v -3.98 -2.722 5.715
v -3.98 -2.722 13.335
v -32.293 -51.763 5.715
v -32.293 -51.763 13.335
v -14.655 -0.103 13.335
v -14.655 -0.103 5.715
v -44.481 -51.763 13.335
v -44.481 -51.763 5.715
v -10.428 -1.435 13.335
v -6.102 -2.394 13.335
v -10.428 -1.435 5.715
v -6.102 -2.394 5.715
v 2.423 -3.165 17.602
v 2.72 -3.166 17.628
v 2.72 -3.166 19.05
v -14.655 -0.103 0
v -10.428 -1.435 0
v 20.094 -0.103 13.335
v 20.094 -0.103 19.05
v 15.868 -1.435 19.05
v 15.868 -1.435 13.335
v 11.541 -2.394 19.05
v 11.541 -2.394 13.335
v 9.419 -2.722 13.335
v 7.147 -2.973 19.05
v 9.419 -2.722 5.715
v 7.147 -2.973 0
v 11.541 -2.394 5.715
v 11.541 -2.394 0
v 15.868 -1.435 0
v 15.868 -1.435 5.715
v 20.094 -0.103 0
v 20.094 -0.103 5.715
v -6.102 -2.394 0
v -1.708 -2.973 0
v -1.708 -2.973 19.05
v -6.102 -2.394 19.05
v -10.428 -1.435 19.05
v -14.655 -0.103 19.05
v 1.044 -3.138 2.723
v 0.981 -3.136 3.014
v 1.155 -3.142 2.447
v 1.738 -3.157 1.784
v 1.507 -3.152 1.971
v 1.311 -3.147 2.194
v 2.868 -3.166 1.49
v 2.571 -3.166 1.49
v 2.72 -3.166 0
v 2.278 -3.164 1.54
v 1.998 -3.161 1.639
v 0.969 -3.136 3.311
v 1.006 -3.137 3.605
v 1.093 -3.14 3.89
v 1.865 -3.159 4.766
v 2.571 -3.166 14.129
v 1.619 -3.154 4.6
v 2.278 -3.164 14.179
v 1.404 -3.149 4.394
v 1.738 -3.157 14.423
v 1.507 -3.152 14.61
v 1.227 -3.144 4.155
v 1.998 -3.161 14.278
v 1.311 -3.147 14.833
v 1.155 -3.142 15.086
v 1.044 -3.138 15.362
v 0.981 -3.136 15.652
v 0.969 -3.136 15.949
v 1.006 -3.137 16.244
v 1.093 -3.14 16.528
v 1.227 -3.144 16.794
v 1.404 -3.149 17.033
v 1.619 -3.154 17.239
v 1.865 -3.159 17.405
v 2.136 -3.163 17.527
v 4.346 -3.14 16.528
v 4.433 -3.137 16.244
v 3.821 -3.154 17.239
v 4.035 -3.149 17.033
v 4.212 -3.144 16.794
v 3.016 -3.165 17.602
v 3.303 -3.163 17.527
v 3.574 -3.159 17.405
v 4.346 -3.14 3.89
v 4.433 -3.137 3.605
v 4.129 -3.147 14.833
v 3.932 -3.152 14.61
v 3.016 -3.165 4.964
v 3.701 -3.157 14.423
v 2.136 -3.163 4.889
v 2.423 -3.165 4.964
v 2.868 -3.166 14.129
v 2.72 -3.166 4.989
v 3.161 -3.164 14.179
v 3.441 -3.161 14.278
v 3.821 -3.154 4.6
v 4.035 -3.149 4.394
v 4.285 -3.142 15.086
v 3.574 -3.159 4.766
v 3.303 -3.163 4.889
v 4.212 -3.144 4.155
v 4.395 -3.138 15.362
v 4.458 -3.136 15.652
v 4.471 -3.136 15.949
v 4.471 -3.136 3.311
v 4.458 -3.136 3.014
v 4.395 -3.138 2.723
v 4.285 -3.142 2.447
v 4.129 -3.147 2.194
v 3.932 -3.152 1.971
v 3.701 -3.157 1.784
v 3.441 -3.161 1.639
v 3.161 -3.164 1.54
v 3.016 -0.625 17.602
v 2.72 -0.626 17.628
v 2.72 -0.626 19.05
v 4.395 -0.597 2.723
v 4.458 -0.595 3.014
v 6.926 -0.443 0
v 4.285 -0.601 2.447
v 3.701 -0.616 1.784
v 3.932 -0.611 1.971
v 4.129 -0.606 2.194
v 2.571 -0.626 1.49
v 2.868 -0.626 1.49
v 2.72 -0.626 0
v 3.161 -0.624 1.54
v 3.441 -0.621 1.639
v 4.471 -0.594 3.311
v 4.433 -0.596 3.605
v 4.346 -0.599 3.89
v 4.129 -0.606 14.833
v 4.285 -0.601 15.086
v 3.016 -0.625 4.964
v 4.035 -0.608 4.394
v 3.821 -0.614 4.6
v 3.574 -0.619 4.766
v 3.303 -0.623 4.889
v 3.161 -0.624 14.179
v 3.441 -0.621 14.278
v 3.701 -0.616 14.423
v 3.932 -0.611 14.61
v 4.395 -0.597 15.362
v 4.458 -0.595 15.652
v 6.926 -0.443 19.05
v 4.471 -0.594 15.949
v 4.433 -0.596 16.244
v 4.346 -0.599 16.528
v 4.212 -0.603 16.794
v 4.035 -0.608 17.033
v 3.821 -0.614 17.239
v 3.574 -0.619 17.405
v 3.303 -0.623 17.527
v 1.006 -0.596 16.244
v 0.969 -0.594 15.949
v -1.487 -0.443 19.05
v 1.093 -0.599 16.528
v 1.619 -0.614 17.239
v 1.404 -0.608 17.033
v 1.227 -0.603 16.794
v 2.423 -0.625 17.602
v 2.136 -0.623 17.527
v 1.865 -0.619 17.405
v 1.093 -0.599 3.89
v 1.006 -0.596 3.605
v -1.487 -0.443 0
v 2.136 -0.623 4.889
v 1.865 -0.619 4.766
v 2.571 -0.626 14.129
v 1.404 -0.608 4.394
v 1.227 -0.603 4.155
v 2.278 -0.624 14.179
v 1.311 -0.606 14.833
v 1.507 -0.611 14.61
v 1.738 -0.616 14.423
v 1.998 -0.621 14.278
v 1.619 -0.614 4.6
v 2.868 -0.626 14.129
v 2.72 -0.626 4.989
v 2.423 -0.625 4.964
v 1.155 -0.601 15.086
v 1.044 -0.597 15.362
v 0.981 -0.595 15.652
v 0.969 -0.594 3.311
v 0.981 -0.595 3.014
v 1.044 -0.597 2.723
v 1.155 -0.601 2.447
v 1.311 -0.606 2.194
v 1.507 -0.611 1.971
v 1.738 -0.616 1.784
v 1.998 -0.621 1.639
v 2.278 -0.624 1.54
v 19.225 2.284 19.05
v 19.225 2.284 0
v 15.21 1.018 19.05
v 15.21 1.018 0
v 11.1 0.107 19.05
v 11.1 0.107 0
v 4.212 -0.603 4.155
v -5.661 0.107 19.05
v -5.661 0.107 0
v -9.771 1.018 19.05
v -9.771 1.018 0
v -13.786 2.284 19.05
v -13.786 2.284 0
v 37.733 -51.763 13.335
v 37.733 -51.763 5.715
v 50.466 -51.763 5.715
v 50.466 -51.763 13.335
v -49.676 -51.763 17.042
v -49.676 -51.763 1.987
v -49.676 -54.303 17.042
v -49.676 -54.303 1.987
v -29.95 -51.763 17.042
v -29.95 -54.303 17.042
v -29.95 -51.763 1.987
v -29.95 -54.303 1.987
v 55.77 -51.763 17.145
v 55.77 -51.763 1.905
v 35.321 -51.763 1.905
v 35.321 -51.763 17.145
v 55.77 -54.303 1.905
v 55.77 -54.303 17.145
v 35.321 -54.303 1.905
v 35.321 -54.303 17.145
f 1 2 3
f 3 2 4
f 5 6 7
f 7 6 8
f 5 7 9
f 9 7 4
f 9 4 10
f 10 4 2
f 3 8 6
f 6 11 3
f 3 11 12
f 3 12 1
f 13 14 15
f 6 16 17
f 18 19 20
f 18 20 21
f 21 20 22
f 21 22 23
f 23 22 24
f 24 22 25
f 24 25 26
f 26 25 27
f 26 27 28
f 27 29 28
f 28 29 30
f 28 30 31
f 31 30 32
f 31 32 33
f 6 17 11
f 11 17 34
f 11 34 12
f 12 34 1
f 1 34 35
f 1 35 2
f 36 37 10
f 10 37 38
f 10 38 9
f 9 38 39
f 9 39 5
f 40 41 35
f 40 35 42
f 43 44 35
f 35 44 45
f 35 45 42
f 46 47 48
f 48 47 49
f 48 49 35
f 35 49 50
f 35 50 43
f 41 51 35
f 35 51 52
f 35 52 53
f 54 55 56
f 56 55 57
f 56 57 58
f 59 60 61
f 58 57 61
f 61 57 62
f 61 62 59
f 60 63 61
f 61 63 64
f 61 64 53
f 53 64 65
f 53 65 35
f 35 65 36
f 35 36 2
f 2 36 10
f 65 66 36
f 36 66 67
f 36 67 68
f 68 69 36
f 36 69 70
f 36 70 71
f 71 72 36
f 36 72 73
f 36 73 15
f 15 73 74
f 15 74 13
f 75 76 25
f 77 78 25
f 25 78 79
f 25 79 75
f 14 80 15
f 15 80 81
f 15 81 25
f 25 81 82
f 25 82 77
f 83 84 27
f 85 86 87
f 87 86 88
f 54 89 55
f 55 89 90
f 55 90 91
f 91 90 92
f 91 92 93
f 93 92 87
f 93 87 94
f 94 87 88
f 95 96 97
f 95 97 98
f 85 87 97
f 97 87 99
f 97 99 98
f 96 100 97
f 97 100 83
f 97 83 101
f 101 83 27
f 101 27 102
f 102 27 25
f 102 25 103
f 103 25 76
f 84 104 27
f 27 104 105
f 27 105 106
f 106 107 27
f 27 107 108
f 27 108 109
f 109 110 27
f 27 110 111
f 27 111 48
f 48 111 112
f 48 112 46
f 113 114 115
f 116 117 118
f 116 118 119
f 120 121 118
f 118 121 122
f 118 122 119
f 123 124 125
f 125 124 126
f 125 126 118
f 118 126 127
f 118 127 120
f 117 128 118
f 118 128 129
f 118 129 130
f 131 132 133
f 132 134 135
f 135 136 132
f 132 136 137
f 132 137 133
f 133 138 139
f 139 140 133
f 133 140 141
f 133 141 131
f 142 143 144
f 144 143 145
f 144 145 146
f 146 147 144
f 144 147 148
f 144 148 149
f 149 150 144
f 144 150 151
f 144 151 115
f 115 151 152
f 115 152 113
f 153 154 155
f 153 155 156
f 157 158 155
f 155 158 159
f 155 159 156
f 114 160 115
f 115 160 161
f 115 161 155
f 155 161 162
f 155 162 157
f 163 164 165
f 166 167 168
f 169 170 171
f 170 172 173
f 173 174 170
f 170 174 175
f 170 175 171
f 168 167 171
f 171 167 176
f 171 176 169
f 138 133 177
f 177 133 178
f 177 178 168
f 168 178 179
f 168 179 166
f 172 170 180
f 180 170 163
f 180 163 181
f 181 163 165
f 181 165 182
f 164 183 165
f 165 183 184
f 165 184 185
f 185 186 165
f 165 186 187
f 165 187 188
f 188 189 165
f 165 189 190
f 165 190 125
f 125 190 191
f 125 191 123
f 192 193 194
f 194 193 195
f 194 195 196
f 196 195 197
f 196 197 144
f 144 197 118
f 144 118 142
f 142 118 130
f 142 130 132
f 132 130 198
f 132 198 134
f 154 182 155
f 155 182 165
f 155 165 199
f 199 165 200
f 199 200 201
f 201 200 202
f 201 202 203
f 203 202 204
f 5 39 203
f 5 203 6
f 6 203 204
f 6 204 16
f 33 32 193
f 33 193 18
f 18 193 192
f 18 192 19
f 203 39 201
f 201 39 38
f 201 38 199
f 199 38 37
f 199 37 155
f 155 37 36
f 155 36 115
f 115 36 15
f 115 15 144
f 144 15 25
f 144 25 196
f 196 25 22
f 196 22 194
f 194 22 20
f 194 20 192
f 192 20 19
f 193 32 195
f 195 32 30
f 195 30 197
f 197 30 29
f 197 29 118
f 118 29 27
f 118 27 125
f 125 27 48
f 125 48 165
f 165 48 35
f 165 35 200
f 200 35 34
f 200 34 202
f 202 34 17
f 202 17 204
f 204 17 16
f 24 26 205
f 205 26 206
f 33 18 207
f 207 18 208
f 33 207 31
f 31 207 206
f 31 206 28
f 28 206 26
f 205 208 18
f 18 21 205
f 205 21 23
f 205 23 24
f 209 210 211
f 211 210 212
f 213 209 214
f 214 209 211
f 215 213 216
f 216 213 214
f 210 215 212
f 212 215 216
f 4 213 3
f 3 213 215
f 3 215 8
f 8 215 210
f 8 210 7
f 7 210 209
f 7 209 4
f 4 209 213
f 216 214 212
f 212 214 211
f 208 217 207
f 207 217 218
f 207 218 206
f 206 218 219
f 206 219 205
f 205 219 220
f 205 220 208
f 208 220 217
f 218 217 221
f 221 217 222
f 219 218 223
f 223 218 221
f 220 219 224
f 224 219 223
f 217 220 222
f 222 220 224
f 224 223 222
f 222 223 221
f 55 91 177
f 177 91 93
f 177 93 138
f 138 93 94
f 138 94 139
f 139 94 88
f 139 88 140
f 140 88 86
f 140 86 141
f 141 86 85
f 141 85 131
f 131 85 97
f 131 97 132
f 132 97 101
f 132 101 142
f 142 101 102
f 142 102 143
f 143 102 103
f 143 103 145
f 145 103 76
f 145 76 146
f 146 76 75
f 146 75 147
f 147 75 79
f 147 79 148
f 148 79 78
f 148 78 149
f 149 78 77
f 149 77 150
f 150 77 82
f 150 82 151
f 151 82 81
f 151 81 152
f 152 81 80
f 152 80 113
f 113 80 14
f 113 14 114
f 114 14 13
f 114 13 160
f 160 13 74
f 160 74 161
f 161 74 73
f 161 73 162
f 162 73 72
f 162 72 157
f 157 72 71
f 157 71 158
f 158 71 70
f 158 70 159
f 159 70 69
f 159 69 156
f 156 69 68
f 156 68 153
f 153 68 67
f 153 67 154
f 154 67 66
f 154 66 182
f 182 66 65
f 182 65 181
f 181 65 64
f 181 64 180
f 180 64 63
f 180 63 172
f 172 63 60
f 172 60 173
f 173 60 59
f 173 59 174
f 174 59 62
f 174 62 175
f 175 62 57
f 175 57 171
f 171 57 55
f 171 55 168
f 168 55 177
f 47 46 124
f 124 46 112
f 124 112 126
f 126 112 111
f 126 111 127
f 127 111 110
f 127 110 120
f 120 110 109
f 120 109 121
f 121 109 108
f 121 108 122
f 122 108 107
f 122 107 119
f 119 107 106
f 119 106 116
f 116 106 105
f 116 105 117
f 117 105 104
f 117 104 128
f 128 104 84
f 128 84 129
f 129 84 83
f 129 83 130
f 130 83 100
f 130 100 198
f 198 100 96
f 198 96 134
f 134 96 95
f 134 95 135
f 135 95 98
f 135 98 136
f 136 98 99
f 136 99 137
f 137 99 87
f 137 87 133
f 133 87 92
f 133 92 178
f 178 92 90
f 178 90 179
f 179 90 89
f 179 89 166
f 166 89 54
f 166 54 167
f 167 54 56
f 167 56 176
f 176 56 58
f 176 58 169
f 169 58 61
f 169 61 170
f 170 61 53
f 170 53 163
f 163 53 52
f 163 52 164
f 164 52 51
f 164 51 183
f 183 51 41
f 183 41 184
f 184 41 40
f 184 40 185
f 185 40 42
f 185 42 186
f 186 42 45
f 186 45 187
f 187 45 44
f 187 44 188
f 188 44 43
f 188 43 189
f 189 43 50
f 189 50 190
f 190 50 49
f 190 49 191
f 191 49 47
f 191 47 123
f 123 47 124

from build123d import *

# Parameters (mm, degrees)
BOSS_EXTRUDE1_DEPTH      = 19.05
BOSS_EXTRUDE2_DEPTH      = 3.81
BOSS_EXTRUDE2_DEPTH_BACK = 3.81
BOSS_EXTRUDE2_START      = -9.525
SKETCH3_W                = 19.725995145
SKETCH3_H                = 15.0557617
SKETCH3_W_2              = 20.448664957
SKETCH3_H_2              = 15.24
BOSS_EXTRUDE3_DEPTH      = 2.54
SKETCH4_R                = 1.7526
CUT_EXTRUDE1_DEPTH       = 9.398


with BuildPart() as part:
    # Sketch1 → Boss-Extrude1 (new body)
    with BuildSketch(Plane.XY):
        with BuildLine():
            ThreePointArc((19.225490484, 2.284288075), (2.719598367, -0.626146046), (-13.78629375, 2.284288075))
            Line((-13.78629375, 2.284288075), (-14.655024914, -0.102531182))
            ThreePointArc((-14.655024914, -0.102531182), (2.719598367, -3.166146046), (20.094221648, -0.102531182))
            Line((20.094221648, -0.102531182), (19.225490484, 2.284288075))
        make_face()
    extrude(amount=BOSS_EXTRUDE1_DEPTH)

    # Sketch2 → Boss-Extrude2 (add, two sides: drawn at the far end of the back side and taken through both)
    with BuildSketch(Plane.XY.offset(19.05).offset(BOSS_EXTRUDE2_START - BOSS_EXTRUDE2_DEPTH_BACK)):
        with BuildLine():
            Line((51.959734492, -54.302617815), (20.094221648, -0.102531182))
            ThreePointArc((20.094221648, -0.102531182), (14.827776239, -1.702056179), (9.419193894, -2.722430855))
            Line((9.419193894, -2.722430855), (39.19902872, -54.302617815))
            Line((39.19902872, -54.302617815), (51.959734492, -54.302617815))
        make_face()
        with BuildLine():
            ThreePointArc((-3.979997159, -2.722430855), (-9.388579504, -1.702056179), (-14.655024914, -0.102531182))
            Line((-14.655024914, -0.102531182), (-45.947459522, -54.302617815))
            Line((-45.947459522, -54.302617815), (-33.759831986, -54.302617815))
            Line((-33.759831986, -54.302617815), (-3.979997159, -2.722430855))
        make_face()
    extrude(amount=BOSS_EXTRUDE2_DEPTH + BOSS_EXTRUDE2_DEPTH_BACK)

    # Sketch3 → Boss-Extrude3 (add)
    with BuildSketch(Plane.XZ.offset(54.302617815)):
        with Locations((-39.812829559, 9.514418368)):
            Rectangle(SKETCH3_W, SKETCH3_H)
        with Locations((45.545402014, 9.525)):
            Rectangle(SKETCH3_W_2, SKETCH3_H_2)
    extrude(amount=-BOSS_EXTRUDE3_DEPTH)

    # Sketch4 → Cut-Extrude1 (cut)
    with BuildSketch(Plane(origin=(0, 0, 0), x_dir=(1, 0, 0), z_dir=(0, 1, 0))):
        with Locations(Location((2.719598367, -3.236263, 0), (0, 0, 270))):
            Circle(SKETCH4_R)
        with Locations(Location((2.719598367, -15.875, 0), (0, 0, 270))):
            Circle(SKETCH4_R)
    extrude(amount=-CUT_EXTRUDE1_DEPTH, mode=Mode.SUBTRACT)


solid = part.part
